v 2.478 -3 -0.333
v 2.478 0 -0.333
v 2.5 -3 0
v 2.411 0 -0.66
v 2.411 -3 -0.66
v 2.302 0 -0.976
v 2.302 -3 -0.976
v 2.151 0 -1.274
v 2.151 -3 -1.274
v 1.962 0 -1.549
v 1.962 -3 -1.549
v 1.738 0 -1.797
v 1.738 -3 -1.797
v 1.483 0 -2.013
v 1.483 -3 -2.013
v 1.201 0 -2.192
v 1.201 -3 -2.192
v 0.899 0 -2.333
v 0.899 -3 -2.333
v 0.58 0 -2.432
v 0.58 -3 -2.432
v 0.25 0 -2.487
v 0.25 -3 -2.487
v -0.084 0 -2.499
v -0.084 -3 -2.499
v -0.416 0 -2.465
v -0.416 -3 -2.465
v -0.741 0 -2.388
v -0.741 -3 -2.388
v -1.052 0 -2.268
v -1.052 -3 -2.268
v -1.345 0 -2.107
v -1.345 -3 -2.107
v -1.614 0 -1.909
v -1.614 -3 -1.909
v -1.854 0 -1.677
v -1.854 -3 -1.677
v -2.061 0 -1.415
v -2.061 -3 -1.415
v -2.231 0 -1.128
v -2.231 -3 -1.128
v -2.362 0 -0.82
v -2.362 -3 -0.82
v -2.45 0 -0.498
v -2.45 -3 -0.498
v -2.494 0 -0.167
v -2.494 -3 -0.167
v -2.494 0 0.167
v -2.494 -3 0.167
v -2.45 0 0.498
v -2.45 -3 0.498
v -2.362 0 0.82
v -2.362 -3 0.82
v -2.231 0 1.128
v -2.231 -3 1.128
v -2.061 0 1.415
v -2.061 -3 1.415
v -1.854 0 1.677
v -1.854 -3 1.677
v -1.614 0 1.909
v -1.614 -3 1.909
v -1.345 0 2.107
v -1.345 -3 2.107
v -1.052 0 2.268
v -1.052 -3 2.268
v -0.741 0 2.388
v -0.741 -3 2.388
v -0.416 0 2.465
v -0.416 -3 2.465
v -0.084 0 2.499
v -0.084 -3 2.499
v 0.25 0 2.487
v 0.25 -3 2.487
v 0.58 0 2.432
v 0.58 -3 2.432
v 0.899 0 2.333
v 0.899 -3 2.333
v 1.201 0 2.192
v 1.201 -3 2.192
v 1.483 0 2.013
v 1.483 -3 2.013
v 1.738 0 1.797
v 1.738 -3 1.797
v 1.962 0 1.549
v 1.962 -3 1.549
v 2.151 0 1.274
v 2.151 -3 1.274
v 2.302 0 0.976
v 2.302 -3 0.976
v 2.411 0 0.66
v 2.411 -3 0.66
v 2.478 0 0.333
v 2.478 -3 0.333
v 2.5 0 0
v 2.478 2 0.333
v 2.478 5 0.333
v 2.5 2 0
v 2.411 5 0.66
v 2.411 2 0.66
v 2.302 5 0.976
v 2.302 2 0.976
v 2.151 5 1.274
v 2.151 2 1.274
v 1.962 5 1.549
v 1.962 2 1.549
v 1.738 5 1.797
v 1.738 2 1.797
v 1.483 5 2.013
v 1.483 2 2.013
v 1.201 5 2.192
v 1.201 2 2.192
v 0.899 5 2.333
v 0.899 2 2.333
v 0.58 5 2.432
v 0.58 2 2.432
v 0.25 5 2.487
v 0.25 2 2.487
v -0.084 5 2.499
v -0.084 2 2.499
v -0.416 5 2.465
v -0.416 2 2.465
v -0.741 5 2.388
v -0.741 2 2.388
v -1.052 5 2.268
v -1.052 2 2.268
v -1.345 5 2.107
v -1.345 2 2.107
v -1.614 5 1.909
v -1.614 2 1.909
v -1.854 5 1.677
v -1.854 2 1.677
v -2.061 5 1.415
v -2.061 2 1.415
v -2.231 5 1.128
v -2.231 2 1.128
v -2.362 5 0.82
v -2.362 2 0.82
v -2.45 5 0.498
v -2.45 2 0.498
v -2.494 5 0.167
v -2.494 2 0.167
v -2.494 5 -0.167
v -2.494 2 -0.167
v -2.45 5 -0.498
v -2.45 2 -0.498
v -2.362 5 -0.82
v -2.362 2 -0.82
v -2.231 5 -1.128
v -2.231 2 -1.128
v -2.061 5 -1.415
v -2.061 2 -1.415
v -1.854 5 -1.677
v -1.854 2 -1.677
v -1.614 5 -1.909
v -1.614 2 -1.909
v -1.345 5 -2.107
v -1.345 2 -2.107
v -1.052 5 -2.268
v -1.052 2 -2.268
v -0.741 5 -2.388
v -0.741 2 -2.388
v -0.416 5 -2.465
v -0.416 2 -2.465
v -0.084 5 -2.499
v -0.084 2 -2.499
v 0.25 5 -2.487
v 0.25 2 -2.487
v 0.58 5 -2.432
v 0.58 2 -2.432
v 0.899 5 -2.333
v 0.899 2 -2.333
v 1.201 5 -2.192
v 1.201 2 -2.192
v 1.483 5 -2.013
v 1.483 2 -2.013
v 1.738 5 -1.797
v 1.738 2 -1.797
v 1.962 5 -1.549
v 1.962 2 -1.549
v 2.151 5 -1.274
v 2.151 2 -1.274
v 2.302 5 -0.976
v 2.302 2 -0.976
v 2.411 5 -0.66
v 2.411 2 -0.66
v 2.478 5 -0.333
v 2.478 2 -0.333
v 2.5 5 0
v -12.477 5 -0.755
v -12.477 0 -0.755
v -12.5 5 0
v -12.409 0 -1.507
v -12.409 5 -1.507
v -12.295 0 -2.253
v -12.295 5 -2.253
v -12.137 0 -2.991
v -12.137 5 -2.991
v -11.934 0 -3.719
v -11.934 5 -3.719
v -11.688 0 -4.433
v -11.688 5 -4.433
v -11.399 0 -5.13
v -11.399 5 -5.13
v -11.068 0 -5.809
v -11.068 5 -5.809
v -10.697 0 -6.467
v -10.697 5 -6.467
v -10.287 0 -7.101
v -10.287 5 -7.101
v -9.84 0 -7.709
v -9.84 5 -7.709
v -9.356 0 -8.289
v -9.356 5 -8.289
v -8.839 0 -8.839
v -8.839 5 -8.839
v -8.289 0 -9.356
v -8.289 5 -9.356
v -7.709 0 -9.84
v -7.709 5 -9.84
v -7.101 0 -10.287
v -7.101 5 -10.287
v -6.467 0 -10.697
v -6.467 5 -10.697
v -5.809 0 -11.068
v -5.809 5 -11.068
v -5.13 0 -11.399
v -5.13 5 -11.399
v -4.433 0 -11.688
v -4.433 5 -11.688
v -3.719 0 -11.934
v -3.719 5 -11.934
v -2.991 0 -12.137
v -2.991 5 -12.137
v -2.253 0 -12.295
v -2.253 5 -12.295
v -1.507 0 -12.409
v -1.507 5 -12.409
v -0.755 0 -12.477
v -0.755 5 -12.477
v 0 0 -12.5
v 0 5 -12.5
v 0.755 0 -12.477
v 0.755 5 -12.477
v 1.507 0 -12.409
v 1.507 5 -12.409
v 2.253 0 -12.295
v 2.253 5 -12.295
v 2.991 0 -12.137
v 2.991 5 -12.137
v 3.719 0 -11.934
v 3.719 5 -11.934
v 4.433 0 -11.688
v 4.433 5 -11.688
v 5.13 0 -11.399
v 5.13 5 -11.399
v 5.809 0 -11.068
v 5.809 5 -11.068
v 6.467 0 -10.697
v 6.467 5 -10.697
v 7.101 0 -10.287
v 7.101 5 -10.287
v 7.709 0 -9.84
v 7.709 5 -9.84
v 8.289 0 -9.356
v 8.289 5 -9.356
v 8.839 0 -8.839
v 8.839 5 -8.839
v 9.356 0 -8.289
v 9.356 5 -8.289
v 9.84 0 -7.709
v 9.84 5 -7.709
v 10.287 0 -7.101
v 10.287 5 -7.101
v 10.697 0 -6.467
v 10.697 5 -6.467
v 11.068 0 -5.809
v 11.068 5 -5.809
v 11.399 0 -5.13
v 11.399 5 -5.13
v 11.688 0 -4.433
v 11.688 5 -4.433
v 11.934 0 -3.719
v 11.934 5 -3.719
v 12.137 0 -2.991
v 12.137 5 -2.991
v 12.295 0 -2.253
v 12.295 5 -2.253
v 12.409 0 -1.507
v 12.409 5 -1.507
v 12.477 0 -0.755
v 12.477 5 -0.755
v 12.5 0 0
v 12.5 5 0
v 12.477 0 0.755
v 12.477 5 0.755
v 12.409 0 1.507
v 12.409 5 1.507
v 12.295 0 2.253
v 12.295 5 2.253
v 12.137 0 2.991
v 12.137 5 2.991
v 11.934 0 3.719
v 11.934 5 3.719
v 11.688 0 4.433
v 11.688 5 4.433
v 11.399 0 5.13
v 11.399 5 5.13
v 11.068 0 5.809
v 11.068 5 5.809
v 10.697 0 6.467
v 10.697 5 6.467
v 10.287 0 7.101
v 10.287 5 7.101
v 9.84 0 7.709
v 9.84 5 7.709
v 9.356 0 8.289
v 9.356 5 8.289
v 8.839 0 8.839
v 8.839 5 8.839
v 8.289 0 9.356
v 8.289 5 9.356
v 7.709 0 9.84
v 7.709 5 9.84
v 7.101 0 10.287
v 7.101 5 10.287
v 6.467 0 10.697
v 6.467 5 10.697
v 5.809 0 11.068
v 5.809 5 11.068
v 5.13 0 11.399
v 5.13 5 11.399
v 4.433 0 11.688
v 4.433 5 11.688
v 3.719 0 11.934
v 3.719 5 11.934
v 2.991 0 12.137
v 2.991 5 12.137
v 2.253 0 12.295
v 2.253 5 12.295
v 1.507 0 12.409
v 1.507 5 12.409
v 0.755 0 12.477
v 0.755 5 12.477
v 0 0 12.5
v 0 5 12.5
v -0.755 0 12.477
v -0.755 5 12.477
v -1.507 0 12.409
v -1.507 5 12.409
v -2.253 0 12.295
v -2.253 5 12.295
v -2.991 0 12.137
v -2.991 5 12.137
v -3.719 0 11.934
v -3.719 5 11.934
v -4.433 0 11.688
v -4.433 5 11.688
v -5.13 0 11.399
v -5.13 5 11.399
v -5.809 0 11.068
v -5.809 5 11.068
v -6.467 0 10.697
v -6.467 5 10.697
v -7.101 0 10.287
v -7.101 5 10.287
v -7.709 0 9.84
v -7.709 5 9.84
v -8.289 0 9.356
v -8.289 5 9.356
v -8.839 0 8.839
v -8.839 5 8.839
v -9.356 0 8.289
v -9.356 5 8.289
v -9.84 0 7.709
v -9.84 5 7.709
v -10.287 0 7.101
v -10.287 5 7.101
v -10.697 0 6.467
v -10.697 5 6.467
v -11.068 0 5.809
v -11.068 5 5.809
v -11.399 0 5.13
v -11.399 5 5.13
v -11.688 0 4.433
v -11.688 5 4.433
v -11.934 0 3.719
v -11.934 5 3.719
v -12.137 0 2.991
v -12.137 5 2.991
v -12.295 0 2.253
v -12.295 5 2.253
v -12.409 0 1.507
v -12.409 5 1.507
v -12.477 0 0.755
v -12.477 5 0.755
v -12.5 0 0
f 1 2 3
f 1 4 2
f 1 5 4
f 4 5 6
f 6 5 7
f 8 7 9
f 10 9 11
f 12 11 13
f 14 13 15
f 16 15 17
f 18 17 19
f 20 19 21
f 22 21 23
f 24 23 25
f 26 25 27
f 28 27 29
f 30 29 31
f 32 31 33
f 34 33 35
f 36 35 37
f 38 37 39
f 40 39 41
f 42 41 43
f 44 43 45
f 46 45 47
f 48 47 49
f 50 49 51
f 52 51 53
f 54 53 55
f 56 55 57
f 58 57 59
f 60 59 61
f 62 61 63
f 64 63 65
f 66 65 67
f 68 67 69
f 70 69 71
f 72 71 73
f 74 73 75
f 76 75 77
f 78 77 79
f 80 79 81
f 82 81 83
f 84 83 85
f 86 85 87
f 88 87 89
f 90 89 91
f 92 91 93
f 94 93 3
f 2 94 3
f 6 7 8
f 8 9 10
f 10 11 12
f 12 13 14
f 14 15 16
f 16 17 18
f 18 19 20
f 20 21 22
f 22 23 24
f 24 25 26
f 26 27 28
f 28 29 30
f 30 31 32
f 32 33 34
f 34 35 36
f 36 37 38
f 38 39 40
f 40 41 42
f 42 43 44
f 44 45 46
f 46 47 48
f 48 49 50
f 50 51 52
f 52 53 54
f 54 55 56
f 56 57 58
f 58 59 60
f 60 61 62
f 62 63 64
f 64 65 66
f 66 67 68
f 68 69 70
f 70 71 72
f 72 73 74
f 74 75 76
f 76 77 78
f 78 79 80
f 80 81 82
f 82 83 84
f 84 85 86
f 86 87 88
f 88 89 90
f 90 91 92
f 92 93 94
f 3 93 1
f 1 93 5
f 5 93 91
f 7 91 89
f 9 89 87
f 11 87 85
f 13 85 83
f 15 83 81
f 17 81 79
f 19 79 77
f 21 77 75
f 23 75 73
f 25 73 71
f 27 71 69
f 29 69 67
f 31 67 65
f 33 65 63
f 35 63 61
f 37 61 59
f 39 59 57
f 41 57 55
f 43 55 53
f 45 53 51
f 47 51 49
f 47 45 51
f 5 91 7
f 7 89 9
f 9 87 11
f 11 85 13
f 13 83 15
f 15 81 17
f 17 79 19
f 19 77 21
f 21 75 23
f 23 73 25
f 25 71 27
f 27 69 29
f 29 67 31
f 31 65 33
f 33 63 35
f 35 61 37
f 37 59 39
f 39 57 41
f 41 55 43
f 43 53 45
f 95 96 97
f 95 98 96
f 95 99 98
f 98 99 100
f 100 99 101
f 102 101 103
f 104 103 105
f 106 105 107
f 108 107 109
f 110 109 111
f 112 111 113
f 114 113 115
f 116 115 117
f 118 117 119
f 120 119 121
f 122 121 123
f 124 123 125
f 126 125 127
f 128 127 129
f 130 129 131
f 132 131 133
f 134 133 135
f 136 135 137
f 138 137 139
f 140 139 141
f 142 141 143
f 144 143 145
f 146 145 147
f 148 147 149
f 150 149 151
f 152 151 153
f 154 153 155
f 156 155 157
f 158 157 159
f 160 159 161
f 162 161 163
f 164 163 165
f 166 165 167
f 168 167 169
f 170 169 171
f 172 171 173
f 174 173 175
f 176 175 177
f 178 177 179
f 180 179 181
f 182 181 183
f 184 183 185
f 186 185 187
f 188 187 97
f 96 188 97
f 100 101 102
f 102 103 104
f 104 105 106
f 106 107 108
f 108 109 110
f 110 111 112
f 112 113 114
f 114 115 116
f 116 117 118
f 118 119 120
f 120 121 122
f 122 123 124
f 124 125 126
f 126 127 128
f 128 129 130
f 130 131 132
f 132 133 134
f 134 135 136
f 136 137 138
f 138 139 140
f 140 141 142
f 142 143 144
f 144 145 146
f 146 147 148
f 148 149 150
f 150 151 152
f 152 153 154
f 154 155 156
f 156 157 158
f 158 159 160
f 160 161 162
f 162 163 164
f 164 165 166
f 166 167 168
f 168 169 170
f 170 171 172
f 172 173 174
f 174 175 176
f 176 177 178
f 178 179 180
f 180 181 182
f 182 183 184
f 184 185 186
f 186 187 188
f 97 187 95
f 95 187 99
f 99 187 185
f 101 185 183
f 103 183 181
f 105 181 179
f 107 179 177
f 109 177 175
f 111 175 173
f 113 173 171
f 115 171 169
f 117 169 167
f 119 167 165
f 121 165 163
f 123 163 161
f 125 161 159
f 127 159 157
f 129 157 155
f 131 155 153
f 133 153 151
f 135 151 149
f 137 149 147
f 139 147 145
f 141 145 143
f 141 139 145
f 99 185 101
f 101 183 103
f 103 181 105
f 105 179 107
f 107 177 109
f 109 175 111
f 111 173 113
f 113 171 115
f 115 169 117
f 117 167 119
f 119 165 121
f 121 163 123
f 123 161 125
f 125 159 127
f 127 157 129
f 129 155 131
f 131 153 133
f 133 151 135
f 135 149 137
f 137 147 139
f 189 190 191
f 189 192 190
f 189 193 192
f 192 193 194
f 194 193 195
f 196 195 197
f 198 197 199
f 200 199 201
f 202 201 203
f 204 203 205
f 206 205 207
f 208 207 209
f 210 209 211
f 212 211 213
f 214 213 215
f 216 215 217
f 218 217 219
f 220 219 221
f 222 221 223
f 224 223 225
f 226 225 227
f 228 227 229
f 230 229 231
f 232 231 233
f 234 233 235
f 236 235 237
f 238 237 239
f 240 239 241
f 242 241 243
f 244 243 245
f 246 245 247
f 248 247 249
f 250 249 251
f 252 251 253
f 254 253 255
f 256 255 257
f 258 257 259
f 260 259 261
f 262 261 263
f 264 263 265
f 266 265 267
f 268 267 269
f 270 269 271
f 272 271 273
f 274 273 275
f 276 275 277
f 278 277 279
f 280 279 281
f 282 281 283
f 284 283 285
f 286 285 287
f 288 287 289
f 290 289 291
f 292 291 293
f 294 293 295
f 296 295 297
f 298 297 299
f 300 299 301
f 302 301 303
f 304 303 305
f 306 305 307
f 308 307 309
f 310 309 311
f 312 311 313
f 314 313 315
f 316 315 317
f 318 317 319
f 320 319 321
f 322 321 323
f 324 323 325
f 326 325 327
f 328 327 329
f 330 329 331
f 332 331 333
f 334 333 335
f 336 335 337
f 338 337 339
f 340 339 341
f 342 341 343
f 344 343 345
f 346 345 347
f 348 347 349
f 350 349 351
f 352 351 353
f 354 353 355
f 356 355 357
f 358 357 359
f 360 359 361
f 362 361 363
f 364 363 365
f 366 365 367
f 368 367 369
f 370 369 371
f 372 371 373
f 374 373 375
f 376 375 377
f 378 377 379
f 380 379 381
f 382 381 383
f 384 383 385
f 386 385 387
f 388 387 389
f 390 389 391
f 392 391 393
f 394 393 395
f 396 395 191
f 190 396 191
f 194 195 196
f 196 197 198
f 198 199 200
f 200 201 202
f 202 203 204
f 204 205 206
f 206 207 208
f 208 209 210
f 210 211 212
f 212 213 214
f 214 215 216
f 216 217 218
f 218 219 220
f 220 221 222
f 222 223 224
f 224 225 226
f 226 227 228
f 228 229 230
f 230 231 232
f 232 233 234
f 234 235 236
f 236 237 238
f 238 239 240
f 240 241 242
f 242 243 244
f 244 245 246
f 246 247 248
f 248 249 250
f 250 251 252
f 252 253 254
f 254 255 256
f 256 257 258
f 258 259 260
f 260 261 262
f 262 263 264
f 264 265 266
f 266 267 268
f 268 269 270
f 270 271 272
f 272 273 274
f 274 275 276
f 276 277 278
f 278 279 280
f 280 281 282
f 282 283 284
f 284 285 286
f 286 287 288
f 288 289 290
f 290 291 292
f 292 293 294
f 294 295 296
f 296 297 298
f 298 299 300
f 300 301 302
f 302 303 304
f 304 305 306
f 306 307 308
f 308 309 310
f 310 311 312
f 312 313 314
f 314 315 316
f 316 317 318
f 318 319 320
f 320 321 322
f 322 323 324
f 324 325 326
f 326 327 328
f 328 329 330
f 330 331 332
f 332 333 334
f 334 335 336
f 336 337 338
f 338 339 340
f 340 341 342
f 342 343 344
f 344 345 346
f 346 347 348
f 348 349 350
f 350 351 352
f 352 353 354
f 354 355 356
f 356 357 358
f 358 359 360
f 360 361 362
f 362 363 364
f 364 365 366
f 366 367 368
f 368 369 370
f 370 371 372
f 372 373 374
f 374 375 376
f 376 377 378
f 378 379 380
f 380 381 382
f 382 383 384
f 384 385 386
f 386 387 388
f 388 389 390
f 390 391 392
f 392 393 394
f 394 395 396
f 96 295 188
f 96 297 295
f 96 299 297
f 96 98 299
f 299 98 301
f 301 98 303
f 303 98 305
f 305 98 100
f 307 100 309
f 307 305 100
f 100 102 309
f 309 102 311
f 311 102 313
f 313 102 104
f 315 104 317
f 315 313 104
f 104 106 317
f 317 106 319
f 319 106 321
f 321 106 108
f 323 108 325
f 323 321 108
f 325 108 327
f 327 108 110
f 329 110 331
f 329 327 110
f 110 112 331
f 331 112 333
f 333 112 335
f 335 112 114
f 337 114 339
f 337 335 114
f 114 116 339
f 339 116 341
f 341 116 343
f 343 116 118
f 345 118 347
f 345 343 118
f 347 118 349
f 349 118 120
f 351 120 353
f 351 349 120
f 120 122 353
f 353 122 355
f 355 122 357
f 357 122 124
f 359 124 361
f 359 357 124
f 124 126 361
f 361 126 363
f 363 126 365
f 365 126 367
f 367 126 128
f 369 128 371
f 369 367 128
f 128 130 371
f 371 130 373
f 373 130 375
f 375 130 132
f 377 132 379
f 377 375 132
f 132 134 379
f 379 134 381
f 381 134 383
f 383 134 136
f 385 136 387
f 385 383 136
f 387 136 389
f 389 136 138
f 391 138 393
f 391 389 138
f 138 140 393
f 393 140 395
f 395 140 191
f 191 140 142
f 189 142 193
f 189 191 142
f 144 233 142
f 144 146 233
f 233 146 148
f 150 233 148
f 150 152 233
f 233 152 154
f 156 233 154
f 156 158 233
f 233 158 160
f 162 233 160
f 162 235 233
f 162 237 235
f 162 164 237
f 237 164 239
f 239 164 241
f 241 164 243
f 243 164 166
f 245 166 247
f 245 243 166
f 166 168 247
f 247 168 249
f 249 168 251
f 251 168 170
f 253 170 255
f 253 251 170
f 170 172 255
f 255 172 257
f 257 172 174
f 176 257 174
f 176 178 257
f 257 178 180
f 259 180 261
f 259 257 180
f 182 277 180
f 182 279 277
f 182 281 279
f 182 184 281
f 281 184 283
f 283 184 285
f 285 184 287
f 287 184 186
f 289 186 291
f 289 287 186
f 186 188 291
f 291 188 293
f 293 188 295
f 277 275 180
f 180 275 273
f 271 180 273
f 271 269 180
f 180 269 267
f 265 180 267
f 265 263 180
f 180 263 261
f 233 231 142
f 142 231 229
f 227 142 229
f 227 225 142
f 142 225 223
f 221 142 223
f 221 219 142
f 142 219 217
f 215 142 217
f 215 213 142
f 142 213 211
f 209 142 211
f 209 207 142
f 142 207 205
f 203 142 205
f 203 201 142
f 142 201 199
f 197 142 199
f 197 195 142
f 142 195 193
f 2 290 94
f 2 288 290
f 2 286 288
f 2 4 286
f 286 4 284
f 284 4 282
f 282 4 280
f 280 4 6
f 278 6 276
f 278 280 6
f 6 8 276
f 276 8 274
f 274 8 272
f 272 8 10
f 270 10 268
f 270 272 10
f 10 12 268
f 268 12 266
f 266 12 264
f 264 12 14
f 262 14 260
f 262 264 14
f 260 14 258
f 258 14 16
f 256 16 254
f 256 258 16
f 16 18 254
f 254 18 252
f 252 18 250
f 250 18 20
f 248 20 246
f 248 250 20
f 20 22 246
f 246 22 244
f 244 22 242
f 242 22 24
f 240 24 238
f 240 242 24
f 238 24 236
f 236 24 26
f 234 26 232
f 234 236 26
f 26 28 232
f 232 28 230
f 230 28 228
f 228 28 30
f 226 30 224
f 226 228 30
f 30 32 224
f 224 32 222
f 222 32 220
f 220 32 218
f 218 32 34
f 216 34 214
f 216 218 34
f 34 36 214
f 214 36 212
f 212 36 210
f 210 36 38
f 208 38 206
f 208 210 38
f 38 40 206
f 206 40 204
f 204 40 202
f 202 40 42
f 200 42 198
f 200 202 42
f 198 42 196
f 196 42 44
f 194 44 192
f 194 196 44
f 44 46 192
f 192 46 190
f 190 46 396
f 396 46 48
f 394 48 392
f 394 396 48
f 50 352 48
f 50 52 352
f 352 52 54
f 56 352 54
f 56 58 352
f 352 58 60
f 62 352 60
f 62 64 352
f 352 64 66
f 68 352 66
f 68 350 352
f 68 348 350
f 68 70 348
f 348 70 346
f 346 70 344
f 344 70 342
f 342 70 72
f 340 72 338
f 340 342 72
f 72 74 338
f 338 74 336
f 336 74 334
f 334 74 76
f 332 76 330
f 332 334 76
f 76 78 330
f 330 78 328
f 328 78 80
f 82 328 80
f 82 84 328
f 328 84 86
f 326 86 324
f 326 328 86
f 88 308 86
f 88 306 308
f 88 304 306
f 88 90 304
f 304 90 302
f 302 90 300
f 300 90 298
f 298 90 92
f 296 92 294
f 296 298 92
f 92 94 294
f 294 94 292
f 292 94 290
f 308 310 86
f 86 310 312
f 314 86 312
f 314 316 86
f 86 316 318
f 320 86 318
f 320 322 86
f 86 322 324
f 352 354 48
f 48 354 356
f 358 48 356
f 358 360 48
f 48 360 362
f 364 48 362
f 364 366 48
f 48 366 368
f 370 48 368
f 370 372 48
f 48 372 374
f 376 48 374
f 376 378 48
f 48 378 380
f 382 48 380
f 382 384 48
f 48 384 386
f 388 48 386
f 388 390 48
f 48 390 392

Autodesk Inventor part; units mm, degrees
ref_plane "YZ Plane" through (0, 0, 0) normal (1, 0, 0) x (0, 1, 0)
ref_plane "XZ Plane" through (0, 0, 0) normal (0, 1, 0) x (-1, 0, 0)
ref_plane "XY Plane" through (0, 0, 0) normal (0, 0, 1) x (1, 0, 0)
sketch "スケッチ1" plane through (0, 0, 0) normal (0, 1, 0) x (-1, 0, 0)
  circle A0 centre (0, 0) radius 12.5
  dimension "d0" = 25
extrude "押し出し1" add sketch "スケッチ1" along normal blind 5
sketch "スケッチ2" plane through (0, 5, 0) normal (0, 1, 0) x (1, 0, 0)
  circle A0 centre (0, 0) radius 12.5 projected
  circle A1 centre (0, 0) radius 2.5
  dimension "d3" = 5
extrude "押し出し2" cut sketch "スケッチ2" against normal blind 3 contours A1
sketch "スケッチ3" plane through (0, 0, 0) normal (0, -1, 0) x (1, 0, 0)
  circle A0 centre (0, 0) radius 12.5 projected
  circle A1 centre (0, 0) radius 2.5
  dimension "d6" = 5
extrude "押し出し3" add sketch "スケッチ3" along normal blind 3 contours A1
properties part number "知能ロボコンシリンダ延長5mm"
